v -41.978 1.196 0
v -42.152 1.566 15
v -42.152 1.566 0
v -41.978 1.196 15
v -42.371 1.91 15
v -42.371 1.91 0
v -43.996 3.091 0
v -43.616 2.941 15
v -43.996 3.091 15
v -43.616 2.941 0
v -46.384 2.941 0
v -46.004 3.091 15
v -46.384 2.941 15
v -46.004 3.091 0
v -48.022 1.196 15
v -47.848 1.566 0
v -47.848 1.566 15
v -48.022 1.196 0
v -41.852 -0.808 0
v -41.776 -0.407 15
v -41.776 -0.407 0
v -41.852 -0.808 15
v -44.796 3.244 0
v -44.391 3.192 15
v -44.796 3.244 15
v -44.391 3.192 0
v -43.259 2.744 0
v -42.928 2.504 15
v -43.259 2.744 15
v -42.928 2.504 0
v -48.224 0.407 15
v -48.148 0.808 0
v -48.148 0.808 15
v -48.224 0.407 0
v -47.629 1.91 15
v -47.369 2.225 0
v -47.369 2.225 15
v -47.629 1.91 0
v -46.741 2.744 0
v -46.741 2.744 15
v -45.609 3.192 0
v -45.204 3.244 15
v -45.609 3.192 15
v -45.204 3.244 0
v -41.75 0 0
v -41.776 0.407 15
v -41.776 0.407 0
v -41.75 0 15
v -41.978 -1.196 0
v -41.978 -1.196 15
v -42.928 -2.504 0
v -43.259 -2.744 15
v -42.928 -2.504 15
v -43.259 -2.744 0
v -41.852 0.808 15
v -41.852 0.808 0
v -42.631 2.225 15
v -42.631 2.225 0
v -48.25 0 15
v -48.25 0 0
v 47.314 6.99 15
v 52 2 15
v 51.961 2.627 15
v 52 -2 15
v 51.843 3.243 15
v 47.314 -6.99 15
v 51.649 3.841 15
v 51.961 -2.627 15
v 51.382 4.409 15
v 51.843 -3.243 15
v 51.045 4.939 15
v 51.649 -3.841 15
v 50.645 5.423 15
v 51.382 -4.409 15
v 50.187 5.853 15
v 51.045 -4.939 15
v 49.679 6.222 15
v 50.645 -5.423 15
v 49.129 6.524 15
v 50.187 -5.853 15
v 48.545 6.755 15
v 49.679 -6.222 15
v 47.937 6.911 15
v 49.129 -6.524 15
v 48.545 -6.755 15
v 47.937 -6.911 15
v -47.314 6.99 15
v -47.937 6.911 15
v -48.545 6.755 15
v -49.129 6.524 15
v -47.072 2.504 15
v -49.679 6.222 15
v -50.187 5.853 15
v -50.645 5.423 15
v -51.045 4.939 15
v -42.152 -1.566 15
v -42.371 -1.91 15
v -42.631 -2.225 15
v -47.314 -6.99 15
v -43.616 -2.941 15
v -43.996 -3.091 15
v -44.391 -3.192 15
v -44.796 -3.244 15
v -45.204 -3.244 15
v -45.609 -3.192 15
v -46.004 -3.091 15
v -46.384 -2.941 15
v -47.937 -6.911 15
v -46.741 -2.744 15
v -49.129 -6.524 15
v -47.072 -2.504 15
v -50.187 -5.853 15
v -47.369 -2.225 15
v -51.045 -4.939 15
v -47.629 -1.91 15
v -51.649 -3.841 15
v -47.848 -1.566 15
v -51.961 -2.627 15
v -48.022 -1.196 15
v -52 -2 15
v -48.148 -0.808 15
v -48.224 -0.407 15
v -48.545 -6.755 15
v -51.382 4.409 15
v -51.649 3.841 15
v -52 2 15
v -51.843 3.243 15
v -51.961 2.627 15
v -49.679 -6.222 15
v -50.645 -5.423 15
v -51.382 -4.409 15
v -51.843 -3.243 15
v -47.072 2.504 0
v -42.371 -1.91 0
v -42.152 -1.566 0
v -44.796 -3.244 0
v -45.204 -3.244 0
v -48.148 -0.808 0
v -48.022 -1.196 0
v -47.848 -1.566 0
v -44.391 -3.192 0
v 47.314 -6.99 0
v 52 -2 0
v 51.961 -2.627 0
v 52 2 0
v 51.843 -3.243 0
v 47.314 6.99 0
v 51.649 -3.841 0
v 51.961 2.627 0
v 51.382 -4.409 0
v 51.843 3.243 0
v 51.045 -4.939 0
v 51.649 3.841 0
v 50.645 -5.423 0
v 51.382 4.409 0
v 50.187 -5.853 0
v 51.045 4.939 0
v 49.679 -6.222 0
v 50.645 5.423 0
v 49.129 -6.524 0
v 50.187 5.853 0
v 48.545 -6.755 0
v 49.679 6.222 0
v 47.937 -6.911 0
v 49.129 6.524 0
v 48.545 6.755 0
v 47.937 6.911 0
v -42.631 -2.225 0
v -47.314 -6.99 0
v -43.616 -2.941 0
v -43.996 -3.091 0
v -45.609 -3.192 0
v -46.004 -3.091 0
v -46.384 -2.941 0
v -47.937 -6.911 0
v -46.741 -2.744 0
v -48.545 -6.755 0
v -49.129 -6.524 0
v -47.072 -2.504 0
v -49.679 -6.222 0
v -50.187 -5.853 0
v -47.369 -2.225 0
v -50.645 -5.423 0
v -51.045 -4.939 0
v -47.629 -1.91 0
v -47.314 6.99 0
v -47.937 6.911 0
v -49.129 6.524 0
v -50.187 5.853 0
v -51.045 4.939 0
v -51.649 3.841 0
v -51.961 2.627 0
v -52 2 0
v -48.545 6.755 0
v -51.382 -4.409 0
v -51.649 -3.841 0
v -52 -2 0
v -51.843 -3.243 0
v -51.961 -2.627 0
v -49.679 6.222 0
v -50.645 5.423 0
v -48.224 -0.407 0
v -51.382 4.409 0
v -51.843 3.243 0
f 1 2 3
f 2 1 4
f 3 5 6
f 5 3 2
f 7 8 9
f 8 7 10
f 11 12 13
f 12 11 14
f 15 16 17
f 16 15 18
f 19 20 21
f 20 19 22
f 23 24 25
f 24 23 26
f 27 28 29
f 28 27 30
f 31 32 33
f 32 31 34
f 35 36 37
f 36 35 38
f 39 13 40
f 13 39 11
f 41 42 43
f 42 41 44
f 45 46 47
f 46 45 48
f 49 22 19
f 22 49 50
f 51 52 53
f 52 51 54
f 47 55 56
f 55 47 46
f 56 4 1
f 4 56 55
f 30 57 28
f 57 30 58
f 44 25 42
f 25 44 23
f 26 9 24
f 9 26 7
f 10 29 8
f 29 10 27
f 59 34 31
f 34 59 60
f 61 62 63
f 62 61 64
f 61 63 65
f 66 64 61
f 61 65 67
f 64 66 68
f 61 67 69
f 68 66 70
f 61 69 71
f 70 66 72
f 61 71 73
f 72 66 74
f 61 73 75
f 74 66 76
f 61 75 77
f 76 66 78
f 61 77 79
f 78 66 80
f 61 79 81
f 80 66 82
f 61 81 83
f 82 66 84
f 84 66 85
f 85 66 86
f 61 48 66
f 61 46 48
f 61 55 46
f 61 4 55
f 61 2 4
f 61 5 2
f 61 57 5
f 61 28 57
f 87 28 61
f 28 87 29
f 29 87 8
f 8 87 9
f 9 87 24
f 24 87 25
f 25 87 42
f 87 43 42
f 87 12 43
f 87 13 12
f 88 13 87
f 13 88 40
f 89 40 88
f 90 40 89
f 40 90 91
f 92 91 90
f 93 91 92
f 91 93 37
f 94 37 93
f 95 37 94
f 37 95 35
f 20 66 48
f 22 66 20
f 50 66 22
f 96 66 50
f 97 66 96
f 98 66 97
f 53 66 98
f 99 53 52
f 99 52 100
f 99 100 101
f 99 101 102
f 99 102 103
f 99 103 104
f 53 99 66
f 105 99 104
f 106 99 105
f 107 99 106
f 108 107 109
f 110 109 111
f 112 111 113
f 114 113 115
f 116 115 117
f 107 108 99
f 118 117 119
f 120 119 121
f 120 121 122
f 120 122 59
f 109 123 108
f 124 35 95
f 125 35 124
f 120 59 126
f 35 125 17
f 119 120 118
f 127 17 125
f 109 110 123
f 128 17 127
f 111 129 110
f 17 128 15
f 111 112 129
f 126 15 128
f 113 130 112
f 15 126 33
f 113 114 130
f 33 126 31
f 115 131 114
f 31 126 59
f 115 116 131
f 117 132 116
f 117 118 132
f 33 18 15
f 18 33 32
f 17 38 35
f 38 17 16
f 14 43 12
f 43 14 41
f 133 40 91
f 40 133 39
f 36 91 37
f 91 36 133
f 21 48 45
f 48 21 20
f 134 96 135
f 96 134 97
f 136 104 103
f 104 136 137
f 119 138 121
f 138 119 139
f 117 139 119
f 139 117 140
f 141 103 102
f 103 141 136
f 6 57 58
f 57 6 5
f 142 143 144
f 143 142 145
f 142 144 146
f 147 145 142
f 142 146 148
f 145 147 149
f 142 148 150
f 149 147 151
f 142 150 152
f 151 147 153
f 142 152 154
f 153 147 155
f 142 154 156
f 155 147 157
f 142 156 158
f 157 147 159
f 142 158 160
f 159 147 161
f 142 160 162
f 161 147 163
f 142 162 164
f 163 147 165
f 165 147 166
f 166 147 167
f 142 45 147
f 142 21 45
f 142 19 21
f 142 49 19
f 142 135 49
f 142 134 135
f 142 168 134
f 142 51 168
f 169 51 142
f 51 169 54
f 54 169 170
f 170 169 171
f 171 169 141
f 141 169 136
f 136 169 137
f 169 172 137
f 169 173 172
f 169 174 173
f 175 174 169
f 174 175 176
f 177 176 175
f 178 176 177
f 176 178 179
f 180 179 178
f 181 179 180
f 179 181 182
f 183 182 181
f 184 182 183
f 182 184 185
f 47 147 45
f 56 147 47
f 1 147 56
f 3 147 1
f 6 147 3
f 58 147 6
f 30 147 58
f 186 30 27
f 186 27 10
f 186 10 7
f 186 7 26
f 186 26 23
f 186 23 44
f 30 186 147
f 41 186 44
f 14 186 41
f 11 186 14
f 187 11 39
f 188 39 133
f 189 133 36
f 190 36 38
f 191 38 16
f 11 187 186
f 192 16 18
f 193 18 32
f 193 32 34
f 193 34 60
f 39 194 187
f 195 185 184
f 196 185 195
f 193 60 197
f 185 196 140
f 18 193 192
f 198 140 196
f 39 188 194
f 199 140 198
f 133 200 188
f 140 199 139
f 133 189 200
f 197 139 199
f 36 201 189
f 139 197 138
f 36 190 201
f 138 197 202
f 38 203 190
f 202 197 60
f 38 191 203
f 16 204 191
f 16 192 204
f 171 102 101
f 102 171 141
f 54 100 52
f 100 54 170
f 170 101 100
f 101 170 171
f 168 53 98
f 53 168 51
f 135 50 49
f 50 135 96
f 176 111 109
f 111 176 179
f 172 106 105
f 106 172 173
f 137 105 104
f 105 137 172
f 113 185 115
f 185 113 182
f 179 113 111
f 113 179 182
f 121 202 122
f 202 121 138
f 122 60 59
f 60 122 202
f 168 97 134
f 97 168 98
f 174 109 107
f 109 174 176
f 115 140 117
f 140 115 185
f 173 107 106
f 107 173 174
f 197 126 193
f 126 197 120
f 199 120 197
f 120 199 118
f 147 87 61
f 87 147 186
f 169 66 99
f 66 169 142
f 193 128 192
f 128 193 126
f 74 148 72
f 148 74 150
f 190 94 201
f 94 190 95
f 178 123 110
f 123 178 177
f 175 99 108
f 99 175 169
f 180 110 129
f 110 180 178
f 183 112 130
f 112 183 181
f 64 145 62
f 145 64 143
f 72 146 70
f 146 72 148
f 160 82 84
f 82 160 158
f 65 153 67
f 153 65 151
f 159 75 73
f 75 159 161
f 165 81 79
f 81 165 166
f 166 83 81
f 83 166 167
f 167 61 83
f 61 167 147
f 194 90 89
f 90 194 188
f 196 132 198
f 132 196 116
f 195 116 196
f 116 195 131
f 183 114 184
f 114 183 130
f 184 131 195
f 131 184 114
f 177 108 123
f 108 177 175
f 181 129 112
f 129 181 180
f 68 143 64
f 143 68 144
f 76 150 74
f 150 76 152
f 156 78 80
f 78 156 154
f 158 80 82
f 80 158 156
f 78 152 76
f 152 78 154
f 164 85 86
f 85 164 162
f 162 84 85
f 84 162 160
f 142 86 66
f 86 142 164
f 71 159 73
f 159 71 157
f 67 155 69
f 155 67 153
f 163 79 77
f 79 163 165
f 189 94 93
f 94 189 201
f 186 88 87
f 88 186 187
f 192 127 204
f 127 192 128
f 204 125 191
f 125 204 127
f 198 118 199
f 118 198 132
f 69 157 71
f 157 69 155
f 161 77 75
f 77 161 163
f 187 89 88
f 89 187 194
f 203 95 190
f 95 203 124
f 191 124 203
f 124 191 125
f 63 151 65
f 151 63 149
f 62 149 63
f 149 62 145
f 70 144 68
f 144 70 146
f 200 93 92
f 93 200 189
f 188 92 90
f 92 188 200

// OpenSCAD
$fn = 50;


difference() {
	union() {
		hull() {
			translate(v = [-47.0000000000, 2.0000000000, 0]) {
				cylinder(h = 15, r = 5);
			}
			translate(v = [47.0000000000, 2.0000000000, 0]) {
				cylinder(h = 15, r = 5);
			}
			translate(v = [-47.0000000000, -2.0000000000, 0]) {
				cylinder(h = 15, r = 5);
			}
			translate(v = [47.0000000000, -2.0000000000, 0]) {
				cylinder(h = 15, r = 5);
			}
		}
	}
	union() {
		translate(v = [-45.0000000000, 0.0000000000, 0]) {
			cylinder(h = 15, r = 3.2500000000);
		}
		translate(v = [-45.0000000000, 0.0000000000, 0]) {
			cylinder(h = 15, r = 1.8000000000);
		}
		translate(v = [-45.0000000000, 0.0000000000, 0]) {
			cylinder(h = 15, r = 1.8000000000);
		}
		translate(v = [-45.0000000000, 0.0000000000, 0]) {
			cylinder(h = 15, r = 1.8000000000);
		}
	}
}
